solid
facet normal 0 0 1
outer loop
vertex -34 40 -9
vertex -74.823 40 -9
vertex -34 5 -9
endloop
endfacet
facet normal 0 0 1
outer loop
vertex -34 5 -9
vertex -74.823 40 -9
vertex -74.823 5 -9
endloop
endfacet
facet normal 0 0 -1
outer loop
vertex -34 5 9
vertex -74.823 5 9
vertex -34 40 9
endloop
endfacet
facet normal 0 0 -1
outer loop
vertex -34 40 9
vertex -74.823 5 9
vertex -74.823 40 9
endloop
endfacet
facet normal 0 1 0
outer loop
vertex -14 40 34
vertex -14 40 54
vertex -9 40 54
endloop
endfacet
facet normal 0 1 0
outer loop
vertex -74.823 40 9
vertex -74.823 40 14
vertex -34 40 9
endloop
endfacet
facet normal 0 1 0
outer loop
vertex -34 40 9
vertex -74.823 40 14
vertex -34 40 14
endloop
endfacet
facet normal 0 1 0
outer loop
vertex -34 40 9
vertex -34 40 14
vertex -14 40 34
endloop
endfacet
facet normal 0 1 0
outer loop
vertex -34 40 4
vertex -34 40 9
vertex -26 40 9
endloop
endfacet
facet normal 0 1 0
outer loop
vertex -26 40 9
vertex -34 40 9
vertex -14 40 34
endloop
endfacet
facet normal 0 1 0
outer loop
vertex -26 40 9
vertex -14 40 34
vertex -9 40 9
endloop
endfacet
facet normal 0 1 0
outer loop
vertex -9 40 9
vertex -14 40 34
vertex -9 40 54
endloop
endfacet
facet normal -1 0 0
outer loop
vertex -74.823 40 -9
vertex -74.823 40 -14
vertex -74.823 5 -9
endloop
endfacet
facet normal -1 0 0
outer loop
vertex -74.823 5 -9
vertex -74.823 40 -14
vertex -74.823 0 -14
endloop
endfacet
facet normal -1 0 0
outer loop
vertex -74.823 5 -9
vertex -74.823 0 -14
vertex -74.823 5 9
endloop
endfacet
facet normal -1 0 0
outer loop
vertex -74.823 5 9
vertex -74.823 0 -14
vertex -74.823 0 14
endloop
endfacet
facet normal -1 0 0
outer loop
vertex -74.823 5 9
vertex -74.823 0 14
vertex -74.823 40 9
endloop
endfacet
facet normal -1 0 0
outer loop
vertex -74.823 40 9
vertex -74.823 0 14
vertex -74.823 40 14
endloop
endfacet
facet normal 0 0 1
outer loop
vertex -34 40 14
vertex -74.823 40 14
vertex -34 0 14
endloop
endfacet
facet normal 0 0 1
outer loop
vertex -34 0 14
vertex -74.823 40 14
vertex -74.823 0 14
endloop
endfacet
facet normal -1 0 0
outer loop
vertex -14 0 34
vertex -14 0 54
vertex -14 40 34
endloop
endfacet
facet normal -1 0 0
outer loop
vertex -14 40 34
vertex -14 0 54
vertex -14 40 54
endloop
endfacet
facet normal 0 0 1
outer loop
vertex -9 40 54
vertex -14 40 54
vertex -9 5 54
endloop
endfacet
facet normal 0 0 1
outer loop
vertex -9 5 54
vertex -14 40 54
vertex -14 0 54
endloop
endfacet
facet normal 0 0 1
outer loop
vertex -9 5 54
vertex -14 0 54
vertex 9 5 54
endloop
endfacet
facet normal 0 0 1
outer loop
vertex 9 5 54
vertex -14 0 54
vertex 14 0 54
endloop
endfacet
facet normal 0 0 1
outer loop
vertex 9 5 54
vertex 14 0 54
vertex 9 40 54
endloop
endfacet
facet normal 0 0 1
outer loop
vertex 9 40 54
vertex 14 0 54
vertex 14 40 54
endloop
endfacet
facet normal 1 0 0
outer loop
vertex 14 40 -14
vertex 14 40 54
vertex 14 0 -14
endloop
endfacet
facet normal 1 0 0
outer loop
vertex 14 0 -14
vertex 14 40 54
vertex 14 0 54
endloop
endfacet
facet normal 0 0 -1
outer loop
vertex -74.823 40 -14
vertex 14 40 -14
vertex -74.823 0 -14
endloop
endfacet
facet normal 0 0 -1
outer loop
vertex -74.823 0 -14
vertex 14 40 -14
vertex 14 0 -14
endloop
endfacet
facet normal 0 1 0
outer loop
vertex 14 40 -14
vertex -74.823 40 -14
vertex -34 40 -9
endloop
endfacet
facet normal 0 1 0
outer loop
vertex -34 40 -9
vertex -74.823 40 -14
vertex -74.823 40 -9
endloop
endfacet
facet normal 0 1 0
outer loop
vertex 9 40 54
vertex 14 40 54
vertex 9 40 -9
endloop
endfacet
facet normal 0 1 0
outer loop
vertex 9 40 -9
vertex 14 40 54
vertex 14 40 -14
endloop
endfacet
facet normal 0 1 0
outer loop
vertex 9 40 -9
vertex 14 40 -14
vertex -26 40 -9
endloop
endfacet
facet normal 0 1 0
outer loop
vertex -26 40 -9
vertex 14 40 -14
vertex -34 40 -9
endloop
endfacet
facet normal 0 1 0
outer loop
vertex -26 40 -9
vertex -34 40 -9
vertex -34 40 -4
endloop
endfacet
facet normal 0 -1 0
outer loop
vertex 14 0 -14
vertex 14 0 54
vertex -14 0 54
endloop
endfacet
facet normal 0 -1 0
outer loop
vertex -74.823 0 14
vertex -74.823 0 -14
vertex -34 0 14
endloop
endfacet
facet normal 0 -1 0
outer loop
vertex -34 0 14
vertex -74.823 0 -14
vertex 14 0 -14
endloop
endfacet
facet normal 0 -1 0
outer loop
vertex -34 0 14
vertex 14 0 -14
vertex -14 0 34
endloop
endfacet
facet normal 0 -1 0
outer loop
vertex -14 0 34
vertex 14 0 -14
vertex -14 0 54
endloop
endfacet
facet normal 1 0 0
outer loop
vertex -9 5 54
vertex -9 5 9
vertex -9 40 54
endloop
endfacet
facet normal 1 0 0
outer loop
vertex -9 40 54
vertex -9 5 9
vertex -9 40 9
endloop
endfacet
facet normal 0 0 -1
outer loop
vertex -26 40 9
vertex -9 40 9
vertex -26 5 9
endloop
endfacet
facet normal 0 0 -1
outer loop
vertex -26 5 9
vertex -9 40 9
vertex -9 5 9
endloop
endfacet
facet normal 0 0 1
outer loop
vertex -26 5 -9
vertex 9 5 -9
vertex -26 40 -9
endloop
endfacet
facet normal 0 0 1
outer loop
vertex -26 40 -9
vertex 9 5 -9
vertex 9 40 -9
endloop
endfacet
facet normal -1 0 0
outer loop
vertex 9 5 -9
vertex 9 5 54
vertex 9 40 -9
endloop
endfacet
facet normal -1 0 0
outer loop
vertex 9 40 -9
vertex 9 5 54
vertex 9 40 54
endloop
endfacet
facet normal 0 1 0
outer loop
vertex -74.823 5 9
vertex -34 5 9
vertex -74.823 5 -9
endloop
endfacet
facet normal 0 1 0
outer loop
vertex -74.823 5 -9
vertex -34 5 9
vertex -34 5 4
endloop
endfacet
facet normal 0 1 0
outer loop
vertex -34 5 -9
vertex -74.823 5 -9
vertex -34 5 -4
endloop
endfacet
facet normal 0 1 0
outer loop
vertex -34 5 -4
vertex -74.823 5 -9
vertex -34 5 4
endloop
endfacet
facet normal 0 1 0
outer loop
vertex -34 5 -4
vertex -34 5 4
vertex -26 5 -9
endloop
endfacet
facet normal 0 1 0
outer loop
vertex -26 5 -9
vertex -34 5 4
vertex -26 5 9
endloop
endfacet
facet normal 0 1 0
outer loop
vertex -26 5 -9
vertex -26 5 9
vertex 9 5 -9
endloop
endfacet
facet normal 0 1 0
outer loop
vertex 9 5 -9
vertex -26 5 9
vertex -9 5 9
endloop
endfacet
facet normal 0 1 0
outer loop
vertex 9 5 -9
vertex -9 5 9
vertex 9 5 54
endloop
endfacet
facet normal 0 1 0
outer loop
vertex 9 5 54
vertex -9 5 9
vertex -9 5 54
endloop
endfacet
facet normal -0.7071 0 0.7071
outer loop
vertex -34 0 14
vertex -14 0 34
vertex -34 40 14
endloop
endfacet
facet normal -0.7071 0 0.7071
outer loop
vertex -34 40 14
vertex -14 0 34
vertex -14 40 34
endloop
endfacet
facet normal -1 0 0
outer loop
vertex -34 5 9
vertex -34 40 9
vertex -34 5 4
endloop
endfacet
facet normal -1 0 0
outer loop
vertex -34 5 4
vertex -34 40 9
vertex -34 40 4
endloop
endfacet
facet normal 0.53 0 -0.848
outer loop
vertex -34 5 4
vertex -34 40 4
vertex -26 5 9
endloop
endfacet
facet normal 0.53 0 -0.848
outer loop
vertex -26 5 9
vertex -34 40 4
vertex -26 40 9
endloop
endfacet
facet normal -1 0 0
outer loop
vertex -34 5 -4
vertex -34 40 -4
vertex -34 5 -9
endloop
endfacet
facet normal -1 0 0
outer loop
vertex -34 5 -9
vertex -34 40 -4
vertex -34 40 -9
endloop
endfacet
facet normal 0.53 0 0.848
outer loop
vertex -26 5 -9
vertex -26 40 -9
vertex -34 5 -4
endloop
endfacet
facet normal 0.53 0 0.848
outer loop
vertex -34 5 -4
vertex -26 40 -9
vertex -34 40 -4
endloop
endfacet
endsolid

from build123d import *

# Parameters (mm, degrees)
SALIENTE_EXTRUIR1_DEPTH = 40
CORTAR_EXTRUIR1_DEPTH   = 35
SALIENTE_EXTRUIR2_DEPTH = 40


with BuildPart() as part:
    # Croquis1 → Saliente-Extruir1 (new body)
    with BuildSketch(Plane(origin=(0, 0, 0), x_dir=(1, 0, 0), z_dir=(0, 1, 0))):
        Polygon((14, -14), (14, 14), (-14, 14), (-74.822534414, 14), (-74.822534414, -14), (-14, -14), (-14, -54), (14, -54), align=None)
    extrude(amount=SALIENTE_EXTRUIR1_DEPTH)

    # Croquis2 → Cortar-Extruir1 (cut)
    with BuildSketch(Plane(origin=(0, 40, 0), x_dir=(1, 0, 0), z_dir=(0, 1, 0))):
        Polygon((9, 9), (-9, 9), (-74.822534414, 9), (-74.822534414, -9), (-9, -9), (-9, -54), (9, -54), (9, -9), align=None)
    extrude(amount=-CORTAR_EXTRUIR1_DEPTH, mode=Mode.SUBTRACT)

    # Croquis3 → Saliente-Extruir2 (add)
    with BuildSketch(Plane(origin=(0, 40, 0), x_dir=(1, 0, 0), z_dir=(0, 1, 0))):
        Polygon((-34, -14), (-14, -34), (-14, -14), align=None)
        Polygon((-34, -9), (-34, -4), (-26, -9), align=None)
        Polygon((-34, 4), (-26, 9), (-34, 9), align=None)
    extrude(amount=-SALIENTE_EXTRUIR2_DEPTH)


solid = part.part
